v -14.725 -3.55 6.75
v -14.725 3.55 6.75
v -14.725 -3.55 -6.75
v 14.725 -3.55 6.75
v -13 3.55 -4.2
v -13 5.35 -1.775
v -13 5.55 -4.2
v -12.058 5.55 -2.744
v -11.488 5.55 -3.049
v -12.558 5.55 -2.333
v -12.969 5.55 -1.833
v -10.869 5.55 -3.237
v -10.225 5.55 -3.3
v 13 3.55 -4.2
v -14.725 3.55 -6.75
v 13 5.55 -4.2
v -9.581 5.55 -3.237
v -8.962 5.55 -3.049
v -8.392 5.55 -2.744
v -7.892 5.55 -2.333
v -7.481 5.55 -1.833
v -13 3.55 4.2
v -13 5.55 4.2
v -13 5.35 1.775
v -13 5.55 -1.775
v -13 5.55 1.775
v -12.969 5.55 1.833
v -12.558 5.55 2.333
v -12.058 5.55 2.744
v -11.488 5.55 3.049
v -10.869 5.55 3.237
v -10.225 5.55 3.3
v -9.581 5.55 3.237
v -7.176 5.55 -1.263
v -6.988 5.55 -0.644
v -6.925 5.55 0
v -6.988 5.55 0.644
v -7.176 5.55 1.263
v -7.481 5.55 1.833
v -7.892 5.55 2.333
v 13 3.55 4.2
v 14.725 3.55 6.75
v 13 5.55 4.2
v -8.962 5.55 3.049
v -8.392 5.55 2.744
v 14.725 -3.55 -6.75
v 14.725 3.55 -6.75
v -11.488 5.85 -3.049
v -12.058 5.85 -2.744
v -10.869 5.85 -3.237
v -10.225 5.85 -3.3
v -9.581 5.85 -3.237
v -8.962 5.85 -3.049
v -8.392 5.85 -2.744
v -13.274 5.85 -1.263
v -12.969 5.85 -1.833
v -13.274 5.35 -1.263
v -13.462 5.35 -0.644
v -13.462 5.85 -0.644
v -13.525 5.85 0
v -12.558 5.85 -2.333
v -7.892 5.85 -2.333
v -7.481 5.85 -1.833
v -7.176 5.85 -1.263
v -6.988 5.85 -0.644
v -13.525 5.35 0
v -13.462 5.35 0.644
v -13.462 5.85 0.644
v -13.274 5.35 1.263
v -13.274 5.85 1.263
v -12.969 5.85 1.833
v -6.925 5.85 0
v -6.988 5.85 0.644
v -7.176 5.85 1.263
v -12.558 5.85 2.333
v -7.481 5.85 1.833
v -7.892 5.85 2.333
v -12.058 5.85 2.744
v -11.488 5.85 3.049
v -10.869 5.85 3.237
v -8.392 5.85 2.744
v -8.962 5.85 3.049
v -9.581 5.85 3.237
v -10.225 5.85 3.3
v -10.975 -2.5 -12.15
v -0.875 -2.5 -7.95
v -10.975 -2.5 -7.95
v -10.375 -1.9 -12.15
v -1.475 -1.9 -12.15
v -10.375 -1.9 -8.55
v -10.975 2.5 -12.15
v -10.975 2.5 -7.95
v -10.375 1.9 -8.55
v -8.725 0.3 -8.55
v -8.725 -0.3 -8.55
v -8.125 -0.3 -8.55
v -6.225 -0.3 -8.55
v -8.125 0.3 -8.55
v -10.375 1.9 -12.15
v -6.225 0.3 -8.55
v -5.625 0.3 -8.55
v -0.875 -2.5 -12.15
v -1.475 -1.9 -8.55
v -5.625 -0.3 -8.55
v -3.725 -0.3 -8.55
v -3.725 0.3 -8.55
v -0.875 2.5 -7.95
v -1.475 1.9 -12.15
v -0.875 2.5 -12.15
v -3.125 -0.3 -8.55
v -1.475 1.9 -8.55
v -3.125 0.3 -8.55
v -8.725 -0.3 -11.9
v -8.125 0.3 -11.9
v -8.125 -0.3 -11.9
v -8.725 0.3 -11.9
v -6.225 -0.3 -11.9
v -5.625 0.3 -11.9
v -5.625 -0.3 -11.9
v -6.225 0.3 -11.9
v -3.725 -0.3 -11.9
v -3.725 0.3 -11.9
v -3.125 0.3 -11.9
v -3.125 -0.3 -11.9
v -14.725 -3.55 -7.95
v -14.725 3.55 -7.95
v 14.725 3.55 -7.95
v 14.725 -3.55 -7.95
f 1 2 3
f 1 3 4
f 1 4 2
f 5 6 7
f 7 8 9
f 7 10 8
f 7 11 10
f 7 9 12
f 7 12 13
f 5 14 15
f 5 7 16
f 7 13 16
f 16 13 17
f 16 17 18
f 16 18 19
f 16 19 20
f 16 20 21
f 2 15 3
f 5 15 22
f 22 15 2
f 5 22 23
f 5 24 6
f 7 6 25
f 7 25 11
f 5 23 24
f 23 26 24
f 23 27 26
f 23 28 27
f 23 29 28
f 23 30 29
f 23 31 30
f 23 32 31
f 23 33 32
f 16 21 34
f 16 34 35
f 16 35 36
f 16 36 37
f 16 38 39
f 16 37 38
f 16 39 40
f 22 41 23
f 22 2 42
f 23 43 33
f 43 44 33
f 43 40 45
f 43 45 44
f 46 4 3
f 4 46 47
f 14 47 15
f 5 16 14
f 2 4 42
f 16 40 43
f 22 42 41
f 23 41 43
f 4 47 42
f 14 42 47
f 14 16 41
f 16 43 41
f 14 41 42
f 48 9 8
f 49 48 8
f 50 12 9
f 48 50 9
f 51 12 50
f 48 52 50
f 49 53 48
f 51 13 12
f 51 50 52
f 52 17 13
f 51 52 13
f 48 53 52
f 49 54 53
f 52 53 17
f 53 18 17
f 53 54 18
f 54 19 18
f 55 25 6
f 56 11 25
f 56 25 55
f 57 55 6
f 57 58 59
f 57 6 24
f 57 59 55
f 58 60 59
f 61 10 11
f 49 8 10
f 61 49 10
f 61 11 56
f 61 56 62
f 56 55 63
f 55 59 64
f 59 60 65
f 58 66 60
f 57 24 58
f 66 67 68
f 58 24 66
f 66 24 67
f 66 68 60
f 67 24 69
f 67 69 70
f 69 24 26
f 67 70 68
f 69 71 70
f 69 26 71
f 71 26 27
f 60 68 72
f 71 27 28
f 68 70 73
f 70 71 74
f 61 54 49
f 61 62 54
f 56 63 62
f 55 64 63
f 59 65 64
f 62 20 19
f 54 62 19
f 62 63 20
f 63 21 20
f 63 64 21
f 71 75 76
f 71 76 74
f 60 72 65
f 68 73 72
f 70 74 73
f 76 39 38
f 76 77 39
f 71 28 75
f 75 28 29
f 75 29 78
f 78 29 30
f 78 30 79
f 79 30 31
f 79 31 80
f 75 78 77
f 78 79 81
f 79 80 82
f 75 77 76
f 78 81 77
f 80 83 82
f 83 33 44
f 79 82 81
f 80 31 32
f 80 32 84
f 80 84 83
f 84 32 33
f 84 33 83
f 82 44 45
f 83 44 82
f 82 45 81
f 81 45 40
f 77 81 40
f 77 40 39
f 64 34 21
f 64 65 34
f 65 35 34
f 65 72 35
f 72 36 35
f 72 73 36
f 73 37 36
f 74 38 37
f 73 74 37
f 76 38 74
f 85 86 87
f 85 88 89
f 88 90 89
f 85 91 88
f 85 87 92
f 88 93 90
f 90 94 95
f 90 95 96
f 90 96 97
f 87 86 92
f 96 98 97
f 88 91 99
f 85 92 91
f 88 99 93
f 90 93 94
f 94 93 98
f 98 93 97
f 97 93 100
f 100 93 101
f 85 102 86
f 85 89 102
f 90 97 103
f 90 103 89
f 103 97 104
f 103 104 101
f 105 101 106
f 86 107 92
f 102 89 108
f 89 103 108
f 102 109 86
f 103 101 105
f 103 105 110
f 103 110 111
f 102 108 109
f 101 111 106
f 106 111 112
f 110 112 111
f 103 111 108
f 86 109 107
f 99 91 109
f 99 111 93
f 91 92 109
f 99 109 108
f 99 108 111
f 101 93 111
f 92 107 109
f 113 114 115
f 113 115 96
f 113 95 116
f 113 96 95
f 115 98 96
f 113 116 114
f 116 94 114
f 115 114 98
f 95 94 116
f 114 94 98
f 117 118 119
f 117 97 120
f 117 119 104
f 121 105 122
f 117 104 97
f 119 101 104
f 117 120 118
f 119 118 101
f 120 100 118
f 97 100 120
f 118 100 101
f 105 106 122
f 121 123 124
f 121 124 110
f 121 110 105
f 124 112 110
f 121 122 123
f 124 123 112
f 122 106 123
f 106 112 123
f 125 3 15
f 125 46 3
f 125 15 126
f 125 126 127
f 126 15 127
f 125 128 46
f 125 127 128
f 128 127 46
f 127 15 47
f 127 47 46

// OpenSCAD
// Sharp GP2Y0D413K0F Distance Sensor Model
$fn = 32;

// Main Body Dimensions
body_w = 29.45;
body_d = 7.1;
body_h = 13.5;

// Lens Case Protrusion Dimensions
lens_case_w = 26.0;
lens_case_d = 2.0;   // Front protrusion (7.1mm body depth + 2.0mm lens protrusion)
lens_case_h = 8.4;

// Lens Positions (referenced from left edge X = -body_w/2)
emitter_x  = -body_w/2 + 4.5;   // *4.5 mm from left
detector_x = -body_w/2 + 19.7;  // *19.7 mm from left

// Lens Window Dimensions
emitter_r  = 3.3;   // Light emitter circular lens radius
detector_w = 7.5;   // Light detector rectangular window width
detector_h = 7.2;   // Light detector rectangular window height

// PWB Dimensions (Bottom)
pwb_w = 29.45;
pwb_d = 7.1;
pwb_h = 1.2;

// Connector Dimensions (JCTC 12001W90-3P-HF)
conn_w = 10.1;
conn_d = 5.0;
conn_h = 4.2;
conn_x = -body_w/2 + 3.75 + conn_w/2; // 3.75mm offset from left

module sharp_gp2y0d413k0f() {
    // Material Colors
    color_case = [0.15, 0.15, 0.15];   // Carbonic ABS (Dark Grey/Black)
    color_lens = [0.20, 0.05, 0.10, 0.85]; // Dark Red Translucent Optical Lens
    color_pwb  = [0.65, 0.45, 0.20];   // Paper Phenol PWB (Brownish)
    color_conn = [0.90, 0.90, 0.85];   // Connector Body (Off-white)
    color_pin  = [0.85, 0.80, 0.20];   // Metallic Pins

    // 1. Main Body Case (Carbonic ABS)
    color(color_case) {
        cube([body_w, body_d, body_h], center=true);
        
        // Front Lens Case Housing
        translate([0, body_d/2 + lens_case_d/2, 0])
            cube([lens_case_w, lens_case_d, lens_case_h], center=true);
    }

    // 2. Lenses (+Y direction / Front)
    color(color_lens) {
        // Left Window: Light Emitter (Circular Lens)
        translate([emitter_x, body_d/2 + lens_case_d - 0.2, 0])
            rotate([-90, 0, 0])
            cylinder(r=emitter_r, h=0.5, center=false);

        // Right Window: Light Detector (Rectangular Lens)
        translate([detector_x, body_d/2 + lens_case_d - 0.2, 0])
            rotate([90, 0, 0])
            linear_extrude(height=0.5)
            square([detector_w, detector_h], center=true);
    }

    // 3. PWB (Printed Wiring Board at bottom)
    color(color_pwb) {
        translate([0, 0, -body_h/2 - pwb_h/2])
            cube([pwb_w, pwb_d, pwb_h], center=true);
    }

    // 4. 3-Pin Connector (JCTC 12001W90-3P-HF)
    translate([conn_x, 0, -body_h/2 - pwb_h - conn_h/2]) {
        color(color_conn) {
            difference() {
                cube([conn_w, conn_d, conn_h], center=true);
                // Inner cavity for connector plug
                translate([0, 0, -0.6])
                    cube([conn_w - 1.2, conn_d - 1.2, conn_h], center=true);
            }
        }
        
        // 3 Pins inside connector
        color(color_pin) {
            for (i = [-1:1]) {
                translate([i * 2.5, 0, 0])
                    cube([0.6, 0.6, conn_h - 0.5], center=true);
            }
        }
    }
}

// Render complete sensor
sharp_gp2y0d413k0f();
